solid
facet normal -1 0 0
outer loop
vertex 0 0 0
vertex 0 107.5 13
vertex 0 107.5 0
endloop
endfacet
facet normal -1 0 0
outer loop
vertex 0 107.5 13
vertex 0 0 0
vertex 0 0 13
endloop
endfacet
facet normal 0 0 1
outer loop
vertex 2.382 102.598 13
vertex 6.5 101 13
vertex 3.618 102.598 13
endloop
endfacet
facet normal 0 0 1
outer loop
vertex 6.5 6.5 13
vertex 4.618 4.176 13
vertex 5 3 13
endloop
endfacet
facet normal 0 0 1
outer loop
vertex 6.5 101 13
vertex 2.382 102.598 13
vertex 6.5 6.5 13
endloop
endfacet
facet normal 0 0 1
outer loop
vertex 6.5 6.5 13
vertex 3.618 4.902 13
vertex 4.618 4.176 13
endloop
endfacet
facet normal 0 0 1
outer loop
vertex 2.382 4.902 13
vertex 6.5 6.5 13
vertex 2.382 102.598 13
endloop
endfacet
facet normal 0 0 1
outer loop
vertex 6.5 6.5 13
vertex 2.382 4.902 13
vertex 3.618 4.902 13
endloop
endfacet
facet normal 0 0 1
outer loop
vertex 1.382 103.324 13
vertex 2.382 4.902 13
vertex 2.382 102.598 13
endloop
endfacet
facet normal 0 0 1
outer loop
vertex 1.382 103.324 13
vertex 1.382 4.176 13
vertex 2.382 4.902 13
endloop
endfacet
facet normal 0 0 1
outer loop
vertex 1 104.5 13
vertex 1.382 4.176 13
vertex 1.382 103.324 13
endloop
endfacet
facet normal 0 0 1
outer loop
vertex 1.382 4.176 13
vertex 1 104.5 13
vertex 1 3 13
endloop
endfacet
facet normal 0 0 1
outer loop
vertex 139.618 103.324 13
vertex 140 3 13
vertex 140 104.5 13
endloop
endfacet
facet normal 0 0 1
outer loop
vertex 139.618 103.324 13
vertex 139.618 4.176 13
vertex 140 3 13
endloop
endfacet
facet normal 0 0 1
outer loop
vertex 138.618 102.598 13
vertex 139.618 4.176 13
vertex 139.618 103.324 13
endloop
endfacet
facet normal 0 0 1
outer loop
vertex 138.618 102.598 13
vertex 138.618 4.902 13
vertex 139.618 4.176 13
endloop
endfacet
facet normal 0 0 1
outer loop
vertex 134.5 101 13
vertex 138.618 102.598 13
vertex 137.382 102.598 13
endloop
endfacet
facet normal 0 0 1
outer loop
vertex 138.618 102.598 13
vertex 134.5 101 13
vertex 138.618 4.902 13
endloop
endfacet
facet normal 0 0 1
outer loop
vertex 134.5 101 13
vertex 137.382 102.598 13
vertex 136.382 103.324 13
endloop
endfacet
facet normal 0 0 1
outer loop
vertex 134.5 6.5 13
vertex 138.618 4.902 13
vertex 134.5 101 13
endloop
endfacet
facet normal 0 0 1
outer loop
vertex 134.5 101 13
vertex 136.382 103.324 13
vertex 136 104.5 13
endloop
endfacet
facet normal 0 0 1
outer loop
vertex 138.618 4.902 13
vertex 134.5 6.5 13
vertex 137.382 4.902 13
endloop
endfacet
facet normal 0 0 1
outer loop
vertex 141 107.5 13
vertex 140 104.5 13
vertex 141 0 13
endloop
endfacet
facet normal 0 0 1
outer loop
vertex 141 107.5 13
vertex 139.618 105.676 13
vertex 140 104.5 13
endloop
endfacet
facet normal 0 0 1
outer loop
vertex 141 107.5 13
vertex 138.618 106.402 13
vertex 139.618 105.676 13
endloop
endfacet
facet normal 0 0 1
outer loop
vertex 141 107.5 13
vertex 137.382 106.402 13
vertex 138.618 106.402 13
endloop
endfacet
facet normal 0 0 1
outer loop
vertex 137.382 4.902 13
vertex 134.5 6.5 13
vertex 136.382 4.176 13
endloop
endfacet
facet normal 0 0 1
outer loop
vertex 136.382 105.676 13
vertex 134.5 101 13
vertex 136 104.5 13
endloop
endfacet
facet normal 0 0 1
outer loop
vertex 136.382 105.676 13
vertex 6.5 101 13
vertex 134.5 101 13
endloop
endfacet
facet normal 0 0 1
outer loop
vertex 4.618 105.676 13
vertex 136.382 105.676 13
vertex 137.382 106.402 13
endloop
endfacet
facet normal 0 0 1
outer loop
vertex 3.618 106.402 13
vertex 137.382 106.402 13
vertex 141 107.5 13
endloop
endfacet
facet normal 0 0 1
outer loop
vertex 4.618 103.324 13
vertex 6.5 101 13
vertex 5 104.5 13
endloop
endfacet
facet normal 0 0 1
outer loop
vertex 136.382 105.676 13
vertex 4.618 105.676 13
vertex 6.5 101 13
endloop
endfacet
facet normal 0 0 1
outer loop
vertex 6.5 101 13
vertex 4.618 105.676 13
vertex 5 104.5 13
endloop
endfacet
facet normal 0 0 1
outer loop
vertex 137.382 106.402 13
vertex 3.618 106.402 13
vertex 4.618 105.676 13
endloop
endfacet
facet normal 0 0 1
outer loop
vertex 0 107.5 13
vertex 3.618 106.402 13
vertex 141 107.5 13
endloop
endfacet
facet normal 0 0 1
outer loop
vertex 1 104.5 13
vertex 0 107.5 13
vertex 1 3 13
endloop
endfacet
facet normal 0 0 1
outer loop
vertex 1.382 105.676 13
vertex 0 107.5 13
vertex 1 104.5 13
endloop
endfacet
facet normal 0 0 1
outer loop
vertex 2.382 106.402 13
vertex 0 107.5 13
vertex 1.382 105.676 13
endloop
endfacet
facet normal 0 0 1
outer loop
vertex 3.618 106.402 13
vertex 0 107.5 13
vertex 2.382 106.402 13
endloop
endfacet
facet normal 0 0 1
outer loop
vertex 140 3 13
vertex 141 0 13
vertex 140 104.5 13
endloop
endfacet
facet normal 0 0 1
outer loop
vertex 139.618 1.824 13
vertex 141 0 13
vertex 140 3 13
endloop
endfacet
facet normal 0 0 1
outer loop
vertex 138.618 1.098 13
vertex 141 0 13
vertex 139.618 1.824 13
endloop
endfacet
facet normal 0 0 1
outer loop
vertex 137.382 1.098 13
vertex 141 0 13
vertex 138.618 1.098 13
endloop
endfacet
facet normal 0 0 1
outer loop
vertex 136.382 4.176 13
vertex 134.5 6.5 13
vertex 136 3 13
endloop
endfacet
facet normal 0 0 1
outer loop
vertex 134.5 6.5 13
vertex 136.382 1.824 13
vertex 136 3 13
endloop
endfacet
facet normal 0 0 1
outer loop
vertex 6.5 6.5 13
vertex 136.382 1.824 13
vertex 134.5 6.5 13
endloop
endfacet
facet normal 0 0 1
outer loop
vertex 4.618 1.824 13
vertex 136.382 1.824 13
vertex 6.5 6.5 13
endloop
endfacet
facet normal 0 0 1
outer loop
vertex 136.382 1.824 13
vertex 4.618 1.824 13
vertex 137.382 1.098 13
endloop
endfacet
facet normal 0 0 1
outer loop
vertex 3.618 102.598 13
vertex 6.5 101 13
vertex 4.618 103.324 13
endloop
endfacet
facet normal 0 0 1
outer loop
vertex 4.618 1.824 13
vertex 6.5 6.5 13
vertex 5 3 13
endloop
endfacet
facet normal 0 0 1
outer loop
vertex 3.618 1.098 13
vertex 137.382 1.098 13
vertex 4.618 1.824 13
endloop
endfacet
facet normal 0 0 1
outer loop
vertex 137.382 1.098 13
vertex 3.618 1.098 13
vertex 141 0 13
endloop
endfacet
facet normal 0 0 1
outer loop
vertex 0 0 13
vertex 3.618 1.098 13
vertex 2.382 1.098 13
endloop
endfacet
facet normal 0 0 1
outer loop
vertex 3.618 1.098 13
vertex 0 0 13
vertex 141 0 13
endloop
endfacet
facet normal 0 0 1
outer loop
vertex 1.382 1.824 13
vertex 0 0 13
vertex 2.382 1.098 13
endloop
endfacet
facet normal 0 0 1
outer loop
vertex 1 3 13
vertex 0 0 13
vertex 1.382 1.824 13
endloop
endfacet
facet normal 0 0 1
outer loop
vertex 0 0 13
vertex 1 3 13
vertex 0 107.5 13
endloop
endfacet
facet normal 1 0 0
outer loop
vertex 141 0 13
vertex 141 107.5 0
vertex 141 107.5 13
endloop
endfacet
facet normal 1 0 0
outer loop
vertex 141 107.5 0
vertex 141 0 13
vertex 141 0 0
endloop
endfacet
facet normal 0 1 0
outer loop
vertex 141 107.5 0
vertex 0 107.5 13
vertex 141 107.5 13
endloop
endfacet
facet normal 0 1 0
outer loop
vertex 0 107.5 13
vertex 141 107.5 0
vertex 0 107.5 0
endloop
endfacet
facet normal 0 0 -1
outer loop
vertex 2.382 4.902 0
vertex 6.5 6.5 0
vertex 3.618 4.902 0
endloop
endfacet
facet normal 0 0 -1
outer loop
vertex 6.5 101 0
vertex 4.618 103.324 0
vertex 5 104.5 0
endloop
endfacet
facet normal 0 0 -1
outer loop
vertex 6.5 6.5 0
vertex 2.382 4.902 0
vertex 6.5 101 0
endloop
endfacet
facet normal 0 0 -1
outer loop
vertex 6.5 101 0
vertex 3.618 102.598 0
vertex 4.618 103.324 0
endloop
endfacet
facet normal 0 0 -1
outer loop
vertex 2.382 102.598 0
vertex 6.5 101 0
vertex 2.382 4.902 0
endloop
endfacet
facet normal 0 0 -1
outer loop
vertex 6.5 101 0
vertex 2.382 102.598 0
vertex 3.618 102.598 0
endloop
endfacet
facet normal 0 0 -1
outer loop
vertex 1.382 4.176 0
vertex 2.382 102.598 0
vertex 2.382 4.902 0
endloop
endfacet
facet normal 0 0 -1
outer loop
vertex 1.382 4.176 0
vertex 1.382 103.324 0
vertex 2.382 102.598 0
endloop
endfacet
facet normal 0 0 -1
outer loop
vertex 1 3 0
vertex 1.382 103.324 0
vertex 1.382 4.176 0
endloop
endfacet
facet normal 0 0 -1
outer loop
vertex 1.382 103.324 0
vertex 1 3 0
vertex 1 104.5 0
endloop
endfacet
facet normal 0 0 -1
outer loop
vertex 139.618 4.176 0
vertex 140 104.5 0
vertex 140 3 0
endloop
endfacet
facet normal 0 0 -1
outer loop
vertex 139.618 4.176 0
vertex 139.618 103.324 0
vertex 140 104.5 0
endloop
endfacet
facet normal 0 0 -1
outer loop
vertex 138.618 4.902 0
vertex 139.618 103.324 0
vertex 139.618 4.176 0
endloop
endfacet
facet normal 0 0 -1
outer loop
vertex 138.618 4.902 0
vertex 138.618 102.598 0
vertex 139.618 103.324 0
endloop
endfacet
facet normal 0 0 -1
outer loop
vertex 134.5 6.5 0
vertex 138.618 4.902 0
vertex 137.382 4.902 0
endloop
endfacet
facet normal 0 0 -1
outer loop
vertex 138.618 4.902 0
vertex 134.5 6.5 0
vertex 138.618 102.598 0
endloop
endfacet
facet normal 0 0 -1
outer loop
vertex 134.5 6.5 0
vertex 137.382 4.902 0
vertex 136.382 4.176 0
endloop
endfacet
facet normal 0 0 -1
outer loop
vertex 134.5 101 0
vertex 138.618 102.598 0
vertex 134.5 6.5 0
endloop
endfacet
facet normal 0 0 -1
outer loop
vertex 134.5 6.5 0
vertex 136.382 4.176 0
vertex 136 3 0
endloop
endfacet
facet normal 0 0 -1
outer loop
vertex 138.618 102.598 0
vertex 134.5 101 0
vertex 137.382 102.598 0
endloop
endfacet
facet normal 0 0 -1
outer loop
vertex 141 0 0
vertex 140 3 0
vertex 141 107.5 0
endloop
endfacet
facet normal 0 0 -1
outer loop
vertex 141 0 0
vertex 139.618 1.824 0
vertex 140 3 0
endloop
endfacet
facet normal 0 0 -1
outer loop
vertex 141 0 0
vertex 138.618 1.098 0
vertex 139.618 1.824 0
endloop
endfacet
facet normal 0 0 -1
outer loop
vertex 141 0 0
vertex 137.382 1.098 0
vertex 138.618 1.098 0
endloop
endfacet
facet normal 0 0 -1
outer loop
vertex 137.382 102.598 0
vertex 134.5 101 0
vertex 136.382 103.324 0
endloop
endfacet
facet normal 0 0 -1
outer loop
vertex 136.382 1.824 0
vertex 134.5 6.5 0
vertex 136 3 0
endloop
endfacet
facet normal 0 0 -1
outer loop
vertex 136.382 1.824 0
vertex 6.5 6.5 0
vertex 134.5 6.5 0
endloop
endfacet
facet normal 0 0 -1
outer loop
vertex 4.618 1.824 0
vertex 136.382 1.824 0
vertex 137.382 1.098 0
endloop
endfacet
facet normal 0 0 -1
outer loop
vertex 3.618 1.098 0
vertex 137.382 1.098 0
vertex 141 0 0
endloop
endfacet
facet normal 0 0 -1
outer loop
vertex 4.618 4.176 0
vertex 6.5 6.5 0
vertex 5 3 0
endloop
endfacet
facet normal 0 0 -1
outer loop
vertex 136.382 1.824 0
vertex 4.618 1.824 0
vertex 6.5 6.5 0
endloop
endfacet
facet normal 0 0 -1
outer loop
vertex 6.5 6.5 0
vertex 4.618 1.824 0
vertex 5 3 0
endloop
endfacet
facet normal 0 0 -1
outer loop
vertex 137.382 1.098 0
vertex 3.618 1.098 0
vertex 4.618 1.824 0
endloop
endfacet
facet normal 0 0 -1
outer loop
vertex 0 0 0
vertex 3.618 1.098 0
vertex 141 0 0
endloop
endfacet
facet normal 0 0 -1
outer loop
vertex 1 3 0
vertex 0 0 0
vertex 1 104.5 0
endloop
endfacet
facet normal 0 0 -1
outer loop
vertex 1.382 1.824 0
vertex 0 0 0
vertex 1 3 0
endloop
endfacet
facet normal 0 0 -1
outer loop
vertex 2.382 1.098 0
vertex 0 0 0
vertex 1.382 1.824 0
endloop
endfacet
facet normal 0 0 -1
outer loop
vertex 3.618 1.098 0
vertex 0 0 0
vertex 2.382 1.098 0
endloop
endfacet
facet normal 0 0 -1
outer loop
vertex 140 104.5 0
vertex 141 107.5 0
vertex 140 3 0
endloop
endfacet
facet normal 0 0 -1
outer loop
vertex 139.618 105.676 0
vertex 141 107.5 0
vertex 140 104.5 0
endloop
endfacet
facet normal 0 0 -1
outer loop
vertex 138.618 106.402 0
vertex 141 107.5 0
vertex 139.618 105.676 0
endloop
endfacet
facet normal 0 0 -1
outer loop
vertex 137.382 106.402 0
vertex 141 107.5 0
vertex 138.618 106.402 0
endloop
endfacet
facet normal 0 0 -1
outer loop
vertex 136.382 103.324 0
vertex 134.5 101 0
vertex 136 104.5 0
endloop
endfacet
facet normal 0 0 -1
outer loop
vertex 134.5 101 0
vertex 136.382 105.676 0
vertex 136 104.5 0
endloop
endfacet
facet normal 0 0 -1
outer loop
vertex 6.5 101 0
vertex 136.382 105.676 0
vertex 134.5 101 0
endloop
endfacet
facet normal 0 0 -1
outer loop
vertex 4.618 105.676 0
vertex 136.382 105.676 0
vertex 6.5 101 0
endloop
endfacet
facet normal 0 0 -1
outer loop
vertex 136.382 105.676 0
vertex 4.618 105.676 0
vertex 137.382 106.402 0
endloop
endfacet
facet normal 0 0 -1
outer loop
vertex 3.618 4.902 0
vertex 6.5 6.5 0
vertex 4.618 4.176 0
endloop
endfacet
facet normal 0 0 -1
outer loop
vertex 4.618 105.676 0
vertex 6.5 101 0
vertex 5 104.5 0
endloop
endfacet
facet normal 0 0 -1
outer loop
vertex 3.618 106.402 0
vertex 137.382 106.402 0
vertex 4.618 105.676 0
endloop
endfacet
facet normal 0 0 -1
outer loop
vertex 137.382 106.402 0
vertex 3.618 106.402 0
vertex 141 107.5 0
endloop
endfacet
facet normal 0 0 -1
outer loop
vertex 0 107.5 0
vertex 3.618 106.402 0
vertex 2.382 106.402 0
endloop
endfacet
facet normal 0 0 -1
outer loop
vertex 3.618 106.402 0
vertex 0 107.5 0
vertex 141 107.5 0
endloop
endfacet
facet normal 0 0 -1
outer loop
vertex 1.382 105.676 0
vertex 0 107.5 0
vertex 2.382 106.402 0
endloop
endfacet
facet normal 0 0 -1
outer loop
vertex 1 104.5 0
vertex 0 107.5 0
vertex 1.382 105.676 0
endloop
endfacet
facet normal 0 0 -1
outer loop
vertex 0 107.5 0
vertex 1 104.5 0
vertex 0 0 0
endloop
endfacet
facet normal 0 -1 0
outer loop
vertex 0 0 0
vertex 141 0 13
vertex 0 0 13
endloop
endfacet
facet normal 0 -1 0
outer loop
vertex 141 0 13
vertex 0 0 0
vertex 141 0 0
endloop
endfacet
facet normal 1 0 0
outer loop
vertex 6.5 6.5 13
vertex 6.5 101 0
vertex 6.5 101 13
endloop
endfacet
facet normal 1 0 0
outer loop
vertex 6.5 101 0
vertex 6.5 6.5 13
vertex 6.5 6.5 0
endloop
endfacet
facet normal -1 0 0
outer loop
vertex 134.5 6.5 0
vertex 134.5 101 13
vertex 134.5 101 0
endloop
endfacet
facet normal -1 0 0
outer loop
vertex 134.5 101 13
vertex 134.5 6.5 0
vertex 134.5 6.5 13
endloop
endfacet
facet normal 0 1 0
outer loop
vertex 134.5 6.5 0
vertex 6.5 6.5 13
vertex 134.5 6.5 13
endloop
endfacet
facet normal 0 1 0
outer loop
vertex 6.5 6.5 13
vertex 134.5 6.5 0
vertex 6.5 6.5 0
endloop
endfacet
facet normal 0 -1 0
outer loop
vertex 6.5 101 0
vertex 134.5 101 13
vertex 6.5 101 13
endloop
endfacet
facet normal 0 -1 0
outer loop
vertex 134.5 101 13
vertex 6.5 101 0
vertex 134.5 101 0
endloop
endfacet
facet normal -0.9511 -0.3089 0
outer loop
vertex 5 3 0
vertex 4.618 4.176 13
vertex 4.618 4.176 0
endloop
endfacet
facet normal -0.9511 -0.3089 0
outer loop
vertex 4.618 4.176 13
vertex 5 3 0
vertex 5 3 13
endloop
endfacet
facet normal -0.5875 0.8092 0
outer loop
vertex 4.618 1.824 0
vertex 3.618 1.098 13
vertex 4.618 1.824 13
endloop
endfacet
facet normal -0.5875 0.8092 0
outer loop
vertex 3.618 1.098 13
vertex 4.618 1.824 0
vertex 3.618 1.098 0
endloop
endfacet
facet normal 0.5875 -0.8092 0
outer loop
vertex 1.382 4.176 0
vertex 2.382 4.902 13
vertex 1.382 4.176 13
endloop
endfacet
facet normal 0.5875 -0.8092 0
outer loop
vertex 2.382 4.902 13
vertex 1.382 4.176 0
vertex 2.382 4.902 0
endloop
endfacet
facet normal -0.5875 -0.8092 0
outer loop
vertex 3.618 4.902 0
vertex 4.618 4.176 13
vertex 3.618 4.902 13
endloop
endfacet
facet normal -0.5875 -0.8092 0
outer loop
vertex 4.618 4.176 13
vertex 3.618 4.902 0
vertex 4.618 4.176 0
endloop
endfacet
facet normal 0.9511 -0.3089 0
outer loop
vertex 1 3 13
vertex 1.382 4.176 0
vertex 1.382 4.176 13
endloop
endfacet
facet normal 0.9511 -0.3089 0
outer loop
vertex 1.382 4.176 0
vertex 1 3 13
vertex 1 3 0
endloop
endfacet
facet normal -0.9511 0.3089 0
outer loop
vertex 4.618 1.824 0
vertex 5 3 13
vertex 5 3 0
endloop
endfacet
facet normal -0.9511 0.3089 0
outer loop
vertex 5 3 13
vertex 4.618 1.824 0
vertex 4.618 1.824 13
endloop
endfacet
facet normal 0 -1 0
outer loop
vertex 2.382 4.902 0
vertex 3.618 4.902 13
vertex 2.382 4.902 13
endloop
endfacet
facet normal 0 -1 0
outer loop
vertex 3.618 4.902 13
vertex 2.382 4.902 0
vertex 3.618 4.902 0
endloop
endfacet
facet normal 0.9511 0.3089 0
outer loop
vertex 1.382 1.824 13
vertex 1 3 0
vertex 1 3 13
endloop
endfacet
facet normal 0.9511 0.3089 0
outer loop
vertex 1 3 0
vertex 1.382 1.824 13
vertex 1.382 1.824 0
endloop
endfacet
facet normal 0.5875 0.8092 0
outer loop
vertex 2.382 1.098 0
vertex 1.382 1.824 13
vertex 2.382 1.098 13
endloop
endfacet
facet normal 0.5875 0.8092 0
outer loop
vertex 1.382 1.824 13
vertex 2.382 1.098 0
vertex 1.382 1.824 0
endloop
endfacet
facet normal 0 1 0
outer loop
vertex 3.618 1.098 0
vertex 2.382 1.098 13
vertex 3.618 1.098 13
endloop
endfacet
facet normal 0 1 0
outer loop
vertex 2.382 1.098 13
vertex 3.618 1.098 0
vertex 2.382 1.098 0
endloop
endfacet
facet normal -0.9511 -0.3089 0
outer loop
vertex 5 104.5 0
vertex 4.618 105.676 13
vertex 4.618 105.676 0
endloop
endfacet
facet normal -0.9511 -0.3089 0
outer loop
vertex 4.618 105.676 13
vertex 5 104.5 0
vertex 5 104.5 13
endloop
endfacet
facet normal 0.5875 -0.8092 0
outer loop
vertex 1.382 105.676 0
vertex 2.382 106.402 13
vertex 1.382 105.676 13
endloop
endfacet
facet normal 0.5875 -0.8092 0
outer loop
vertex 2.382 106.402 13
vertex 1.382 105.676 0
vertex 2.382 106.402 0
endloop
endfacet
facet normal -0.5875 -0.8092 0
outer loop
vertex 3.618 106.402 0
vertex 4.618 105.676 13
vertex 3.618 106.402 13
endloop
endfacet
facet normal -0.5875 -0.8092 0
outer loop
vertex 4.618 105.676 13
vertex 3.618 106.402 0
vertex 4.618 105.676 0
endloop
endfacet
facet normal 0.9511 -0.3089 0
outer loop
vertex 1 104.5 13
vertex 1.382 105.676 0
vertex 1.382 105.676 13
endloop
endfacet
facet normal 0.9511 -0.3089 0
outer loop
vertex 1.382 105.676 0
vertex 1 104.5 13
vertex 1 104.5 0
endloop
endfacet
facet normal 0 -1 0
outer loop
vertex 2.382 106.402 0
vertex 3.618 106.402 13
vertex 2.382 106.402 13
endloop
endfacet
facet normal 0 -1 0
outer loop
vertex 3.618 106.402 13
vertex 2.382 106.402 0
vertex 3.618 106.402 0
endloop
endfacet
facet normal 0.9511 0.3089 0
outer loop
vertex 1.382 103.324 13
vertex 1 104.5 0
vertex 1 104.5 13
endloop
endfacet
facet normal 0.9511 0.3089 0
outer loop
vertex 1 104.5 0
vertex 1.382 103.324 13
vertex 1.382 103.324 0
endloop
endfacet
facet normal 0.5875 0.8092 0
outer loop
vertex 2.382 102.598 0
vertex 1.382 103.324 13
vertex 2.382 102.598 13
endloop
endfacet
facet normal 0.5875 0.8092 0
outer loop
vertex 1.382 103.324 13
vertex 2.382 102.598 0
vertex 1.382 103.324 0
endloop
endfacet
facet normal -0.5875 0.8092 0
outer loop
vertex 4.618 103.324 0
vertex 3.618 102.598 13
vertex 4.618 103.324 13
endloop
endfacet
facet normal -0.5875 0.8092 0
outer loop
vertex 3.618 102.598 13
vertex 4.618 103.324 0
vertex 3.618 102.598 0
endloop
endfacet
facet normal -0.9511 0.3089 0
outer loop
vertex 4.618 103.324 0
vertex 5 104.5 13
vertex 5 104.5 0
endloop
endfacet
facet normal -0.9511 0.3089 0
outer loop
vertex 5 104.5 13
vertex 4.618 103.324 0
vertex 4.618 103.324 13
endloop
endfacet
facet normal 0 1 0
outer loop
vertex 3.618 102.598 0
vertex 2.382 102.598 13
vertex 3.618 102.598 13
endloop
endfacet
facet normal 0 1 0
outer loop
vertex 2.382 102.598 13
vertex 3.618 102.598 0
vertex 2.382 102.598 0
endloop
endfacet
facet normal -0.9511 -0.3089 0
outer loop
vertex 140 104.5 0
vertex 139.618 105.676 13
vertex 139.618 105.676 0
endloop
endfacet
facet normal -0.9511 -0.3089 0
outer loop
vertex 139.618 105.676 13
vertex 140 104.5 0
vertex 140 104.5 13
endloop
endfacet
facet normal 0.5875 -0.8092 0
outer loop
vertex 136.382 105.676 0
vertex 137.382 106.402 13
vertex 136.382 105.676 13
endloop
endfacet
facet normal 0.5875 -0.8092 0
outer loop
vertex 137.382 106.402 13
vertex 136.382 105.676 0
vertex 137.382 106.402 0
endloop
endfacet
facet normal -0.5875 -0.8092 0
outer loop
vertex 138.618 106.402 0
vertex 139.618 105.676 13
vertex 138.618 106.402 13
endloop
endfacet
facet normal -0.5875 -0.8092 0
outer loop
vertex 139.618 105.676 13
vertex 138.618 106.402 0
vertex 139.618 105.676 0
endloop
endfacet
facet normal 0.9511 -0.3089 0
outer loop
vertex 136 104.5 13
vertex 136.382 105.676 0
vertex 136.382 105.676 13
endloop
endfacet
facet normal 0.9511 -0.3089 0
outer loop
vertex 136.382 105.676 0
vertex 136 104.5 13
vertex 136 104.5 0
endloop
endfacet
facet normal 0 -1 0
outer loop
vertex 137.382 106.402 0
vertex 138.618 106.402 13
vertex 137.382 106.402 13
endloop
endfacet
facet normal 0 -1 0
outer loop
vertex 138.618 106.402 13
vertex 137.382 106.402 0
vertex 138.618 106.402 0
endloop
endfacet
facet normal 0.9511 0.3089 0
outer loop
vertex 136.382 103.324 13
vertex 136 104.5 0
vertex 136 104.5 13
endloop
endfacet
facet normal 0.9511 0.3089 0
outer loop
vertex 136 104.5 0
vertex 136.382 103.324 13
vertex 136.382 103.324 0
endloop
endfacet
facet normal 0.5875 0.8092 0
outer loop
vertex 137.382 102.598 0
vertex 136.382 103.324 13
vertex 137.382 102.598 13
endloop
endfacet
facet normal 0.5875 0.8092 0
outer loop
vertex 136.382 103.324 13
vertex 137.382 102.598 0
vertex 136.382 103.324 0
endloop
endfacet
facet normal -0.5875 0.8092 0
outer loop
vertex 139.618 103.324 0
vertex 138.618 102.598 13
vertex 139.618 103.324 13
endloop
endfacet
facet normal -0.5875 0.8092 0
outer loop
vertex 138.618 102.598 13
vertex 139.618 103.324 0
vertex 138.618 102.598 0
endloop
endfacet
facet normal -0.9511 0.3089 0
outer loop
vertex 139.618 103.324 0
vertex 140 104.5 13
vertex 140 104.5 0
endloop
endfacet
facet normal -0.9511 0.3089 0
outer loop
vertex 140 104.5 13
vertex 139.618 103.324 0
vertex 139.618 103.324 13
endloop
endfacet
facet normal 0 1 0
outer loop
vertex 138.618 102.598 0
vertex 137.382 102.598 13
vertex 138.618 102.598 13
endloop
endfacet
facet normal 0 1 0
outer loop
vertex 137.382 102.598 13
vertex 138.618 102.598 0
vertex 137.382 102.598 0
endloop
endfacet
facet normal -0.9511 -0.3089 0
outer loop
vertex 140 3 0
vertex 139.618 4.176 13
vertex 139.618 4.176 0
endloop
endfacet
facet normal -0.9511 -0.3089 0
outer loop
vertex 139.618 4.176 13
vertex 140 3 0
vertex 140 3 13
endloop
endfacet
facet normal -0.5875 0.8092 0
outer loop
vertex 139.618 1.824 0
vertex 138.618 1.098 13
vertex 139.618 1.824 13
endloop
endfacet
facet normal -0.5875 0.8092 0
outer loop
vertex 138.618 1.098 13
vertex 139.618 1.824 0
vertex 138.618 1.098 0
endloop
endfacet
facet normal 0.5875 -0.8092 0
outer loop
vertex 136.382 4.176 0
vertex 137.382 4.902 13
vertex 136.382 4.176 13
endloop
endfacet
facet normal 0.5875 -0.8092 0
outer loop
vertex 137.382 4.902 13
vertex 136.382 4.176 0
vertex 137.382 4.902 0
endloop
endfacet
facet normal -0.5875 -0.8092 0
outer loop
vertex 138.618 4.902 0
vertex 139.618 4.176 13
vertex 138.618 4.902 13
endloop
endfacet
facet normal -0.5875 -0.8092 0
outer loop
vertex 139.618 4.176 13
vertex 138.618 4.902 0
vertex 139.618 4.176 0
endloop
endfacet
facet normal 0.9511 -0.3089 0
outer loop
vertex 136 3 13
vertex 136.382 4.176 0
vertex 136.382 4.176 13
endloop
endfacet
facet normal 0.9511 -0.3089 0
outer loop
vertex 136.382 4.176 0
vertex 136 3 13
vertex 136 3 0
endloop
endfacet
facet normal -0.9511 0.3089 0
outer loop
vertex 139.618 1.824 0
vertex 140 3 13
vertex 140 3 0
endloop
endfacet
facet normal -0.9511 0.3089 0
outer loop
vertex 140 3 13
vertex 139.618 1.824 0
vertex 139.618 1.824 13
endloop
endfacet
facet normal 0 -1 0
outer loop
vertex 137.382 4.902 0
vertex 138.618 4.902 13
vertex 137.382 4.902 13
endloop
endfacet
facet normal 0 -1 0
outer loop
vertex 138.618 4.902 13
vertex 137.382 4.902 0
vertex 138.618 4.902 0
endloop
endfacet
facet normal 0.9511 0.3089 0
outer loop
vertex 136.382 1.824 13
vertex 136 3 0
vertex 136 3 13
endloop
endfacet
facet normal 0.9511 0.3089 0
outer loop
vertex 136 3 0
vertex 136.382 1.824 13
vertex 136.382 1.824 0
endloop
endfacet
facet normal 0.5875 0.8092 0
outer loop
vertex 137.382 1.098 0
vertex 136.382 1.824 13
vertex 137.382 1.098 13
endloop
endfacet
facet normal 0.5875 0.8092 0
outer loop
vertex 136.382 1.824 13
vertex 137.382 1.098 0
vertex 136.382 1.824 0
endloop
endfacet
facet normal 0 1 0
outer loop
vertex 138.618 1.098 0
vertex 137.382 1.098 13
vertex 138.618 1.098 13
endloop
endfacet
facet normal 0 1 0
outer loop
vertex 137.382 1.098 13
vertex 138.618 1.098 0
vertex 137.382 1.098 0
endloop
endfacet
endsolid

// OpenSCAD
/* ModuleA
 * The middle part that distances the backplate.
 */
keyCols = 7;
keyRows = 6;
keyX = 15;
keyY = 12.5;
keySpace = 3.5;
edgeSpaceAddition = 5;
edgeSpace = (edgeSpaceAddition*2)-keySpace;
keyZ = -1;

moduleX = (edgeSpace+edgeSpaceAddition)+(keySpace*keyCols)+keyX*(keyCols-1)+keyX;
moduleY = (edgeSpace+edgeSpaceAddition)+(keySpace*keyRows)+keyY*(keyRows-1)+keyY;
moduleZ = 13;

keySize = [keyX, keyY, moduleZ+2];

function position(x,y,z) = [edgeSpace+keySpace*x+keyX*(x-1)-(edgeSpaceAddition/2), edgeSpace+keySpace*y+keyY*(y-1)-(edgeSpaceAddition/2), z];

module keyHoles (yStart, yEnd, xStart, xEnd){
    for(y = [yStart:yEnd]){
        for(x = [xStart:xEnd]){
			translate(position(x,y,keyZ)) cube(keySize);
        }
    }
}

module screwHole (x, y){
	translate([x,y,keyZ]) cylinder(h=moduleZ+2, r=2, $fn=10);
}

difference(){
    cube([moduleX,moduleY,moduleZ]);

	translate([edgeSpace,edgeSpace,keyZ])
    cube([moduleX-(edgeSpace*2),moduleY-(edgeSpace*2),moduleZ+2]);

	screwHole(3,3);
	screwHole(3,moduleY-3);
	screwHole(moduleX-3,moduleY-3);
	screwHole(moduleX-3,3);
}
